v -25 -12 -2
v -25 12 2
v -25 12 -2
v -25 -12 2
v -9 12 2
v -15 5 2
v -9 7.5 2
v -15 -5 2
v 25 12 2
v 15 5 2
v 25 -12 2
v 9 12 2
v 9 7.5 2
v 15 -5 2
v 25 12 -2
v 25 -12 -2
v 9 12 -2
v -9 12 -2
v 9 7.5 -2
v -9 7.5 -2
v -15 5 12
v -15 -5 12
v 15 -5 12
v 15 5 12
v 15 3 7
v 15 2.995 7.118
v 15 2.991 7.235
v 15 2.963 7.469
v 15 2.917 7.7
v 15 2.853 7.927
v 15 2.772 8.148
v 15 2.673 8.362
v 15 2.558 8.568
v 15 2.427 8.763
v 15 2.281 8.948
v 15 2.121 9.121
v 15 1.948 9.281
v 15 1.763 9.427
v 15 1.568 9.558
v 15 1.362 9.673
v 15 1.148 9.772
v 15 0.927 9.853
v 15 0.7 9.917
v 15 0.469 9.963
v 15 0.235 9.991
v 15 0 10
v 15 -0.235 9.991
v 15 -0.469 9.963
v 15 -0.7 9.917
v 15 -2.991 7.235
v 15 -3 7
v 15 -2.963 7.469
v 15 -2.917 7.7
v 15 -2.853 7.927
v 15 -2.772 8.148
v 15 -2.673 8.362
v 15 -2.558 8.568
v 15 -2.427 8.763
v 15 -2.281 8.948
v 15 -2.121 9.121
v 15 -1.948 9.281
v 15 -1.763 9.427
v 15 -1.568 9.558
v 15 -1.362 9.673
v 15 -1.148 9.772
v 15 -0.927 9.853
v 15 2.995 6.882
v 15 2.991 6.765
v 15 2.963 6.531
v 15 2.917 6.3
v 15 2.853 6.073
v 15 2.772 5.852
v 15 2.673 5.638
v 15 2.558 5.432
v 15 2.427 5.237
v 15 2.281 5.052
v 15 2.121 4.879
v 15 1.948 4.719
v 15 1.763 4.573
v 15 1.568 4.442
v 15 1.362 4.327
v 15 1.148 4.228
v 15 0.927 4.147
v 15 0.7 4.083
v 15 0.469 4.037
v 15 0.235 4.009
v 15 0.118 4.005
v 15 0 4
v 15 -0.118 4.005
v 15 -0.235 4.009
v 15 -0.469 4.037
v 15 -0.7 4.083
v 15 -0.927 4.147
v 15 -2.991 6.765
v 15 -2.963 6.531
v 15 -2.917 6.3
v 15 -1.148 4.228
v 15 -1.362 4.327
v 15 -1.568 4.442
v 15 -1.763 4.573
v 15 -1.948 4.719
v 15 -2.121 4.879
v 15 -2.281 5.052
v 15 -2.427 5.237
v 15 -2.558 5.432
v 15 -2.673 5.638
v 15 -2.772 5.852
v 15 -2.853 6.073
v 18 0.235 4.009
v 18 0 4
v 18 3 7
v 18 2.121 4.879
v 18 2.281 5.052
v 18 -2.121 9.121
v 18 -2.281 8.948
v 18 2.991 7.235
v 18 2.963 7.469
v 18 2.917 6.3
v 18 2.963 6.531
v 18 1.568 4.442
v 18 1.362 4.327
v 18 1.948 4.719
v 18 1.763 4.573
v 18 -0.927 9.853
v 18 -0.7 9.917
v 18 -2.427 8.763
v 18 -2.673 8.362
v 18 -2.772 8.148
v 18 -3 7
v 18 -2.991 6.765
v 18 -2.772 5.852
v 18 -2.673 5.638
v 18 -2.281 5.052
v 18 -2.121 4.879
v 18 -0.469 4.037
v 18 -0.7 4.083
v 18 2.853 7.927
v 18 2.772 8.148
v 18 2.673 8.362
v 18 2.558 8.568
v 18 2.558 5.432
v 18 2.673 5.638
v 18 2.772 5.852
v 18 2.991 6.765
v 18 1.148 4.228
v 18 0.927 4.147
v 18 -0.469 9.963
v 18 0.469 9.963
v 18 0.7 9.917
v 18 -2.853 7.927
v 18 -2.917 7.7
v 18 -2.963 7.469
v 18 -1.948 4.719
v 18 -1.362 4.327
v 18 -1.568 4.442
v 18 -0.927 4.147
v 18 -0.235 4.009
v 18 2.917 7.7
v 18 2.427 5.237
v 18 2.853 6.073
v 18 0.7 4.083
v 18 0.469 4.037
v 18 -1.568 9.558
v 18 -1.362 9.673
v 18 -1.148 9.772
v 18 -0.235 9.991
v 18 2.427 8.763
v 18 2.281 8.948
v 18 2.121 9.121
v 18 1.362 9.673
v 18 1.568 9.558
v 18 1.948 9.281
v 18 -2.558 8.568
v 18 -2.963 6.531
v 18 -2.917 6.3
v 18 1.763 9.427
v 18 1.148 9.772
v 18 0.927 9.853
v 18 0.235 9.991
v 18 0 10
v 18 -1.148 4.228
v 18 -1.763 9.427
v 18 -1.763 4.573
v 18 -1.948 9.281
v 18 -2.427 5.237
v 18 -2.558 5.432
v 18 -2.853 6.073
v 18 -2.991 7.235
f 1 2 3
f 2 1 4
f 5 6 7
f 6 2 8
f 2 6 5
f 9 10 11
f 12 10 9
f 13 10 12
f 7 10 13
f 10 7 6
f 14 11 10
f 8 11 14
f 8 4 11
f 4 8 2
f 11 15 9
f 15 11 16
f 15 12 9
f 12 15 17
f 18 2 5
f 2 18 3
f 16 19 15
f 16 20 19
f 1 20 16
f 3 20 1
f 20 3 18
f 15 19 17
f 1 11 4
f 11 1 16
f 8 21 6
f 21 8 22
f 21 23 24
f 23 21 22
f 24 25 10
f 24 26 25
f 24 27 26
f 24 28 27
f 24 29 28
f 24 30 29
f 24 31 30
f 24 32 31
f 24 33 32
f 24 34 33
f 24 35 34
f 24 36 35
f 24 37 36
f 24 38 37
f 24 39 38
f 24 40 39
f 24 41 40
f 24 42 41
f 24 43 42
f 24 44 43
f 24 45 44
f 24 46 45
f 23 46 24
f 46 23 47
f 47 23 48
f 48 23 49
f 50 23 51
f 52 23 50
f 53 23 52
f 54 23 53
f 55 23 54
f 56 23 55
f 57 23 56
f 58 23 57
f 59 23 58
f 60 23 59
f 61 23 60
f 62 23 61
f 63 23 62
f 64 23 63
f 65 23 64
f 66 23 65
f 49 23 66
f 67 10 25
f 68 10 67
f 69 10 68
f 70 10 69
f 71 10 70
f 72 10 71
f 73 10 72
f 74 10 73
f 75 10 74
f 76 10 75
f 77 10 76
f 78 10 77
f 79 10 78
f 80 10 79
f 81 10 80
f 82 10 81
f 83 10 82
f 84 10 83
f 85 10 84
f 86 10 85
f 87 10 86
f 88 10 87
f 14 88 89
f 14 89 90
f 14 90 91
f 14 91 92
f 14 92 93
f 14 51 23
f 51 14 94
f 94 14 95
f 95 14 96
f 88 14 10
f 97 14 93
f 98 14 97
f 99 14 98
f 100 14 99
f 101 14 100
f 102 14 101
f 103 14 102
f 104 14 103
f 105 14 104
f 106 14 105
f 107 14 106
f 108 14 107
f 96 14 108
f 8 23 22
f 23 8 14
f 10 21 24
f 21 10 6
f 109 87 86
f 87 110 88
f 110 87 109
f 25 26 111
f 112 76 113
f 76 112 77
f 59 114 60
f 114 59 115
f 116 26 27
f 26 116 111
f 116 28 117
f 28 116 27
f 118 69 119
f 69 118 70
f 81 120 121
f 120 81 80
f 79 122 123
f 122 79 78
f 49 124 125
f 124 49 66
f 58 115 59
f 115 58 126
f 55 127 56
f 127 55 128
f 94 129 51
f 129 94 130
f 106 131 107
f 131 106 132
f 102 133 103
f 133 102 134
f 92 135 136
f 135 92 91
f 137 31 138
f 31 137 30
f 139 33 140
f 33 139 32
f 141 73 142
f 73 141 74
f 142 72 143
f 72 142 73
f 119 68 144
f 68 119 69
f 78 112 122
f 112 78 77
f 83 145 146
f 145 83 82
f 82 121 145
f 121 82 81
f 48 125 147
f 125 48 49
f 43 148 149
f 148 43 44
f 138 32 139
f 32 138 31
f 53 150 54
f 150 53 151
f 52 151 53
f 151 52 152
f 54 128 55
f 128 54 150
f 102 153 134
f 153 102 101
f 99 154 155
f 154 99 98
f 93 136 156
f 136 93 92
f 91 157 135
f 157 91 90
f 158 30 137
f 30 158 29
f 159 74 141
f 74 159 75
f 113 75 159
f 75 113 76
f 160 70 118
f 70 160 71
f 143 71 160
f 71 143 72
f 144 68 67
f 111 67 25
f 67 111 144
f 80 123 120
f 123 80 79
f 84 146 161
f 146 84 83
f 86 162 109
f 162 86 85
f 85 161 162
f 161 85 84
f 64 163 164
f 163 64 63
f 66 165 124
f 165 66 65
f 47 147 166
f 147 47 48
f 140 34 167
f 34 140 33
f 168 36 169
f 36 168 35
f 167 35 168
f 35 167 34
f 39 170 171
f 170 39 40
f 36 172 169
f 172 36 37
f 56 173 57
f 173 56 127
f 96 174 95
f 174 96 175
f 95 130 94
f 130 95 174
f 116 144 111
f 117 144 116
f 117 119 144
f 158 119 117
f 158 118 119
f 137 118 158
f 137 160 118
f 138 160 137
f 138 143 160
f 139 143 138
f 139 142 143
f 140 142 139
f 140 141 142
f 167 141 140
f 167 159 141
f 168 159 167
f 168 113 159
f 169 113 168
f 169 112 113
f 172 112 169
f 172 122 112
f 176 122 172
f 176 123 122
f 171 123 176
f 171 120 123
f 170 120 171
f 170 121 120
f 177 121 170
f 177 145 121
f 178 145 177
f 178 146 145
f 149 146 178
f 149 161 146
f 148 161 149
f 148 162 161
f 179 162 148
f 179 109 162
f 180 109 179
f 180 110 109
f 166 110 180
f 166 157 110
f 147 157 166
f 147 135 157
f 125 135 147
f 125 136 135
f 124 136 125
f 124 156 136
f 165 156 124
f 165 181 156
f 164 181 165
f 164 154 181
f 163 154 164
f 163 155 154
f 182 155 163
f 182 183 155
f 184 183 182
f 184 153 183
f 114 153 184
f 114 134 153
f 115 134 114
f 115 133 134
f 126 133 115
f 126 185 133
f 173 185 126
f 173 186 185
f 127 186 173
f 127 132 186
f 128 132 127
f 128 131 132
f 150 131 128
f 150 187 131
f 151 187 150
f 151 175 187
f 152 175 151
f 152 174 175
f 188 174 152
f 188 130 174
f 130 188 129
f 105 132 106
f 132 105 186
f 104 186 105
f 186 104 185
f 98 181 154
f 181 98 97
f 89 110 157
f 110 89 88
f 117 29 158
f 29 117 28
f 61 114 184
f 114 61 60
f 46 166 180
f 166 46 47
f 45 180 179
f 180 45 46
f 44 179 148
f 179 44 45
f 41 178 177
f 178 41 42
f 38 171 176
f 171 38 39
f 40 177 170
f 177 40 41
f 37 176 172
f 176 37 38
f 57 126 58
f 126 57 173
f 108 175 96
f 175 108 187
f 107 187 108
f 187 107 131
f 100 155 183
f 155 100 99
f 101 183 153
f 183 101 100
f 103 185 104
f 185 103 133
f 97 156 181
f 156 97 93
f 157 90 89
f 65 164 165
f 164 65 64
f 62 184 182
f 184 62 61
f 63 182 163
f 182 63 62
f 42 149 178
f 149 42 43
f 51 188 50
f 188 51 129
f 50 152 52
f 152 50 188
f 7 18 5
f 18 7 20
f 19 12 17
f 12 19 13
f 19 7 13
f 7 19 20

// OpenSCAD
difference() {

union () {

cube([50,24,4],center=true);
    translate([0,0,7]) cube([30,10,10],center=true);
    translate([15,0,7]) rotate([0,90,0]) cylinder(r=3,h=6,center=true,$fn=80);

}
translate([0,10,0]) cube([18,5,8], center=true);

}
